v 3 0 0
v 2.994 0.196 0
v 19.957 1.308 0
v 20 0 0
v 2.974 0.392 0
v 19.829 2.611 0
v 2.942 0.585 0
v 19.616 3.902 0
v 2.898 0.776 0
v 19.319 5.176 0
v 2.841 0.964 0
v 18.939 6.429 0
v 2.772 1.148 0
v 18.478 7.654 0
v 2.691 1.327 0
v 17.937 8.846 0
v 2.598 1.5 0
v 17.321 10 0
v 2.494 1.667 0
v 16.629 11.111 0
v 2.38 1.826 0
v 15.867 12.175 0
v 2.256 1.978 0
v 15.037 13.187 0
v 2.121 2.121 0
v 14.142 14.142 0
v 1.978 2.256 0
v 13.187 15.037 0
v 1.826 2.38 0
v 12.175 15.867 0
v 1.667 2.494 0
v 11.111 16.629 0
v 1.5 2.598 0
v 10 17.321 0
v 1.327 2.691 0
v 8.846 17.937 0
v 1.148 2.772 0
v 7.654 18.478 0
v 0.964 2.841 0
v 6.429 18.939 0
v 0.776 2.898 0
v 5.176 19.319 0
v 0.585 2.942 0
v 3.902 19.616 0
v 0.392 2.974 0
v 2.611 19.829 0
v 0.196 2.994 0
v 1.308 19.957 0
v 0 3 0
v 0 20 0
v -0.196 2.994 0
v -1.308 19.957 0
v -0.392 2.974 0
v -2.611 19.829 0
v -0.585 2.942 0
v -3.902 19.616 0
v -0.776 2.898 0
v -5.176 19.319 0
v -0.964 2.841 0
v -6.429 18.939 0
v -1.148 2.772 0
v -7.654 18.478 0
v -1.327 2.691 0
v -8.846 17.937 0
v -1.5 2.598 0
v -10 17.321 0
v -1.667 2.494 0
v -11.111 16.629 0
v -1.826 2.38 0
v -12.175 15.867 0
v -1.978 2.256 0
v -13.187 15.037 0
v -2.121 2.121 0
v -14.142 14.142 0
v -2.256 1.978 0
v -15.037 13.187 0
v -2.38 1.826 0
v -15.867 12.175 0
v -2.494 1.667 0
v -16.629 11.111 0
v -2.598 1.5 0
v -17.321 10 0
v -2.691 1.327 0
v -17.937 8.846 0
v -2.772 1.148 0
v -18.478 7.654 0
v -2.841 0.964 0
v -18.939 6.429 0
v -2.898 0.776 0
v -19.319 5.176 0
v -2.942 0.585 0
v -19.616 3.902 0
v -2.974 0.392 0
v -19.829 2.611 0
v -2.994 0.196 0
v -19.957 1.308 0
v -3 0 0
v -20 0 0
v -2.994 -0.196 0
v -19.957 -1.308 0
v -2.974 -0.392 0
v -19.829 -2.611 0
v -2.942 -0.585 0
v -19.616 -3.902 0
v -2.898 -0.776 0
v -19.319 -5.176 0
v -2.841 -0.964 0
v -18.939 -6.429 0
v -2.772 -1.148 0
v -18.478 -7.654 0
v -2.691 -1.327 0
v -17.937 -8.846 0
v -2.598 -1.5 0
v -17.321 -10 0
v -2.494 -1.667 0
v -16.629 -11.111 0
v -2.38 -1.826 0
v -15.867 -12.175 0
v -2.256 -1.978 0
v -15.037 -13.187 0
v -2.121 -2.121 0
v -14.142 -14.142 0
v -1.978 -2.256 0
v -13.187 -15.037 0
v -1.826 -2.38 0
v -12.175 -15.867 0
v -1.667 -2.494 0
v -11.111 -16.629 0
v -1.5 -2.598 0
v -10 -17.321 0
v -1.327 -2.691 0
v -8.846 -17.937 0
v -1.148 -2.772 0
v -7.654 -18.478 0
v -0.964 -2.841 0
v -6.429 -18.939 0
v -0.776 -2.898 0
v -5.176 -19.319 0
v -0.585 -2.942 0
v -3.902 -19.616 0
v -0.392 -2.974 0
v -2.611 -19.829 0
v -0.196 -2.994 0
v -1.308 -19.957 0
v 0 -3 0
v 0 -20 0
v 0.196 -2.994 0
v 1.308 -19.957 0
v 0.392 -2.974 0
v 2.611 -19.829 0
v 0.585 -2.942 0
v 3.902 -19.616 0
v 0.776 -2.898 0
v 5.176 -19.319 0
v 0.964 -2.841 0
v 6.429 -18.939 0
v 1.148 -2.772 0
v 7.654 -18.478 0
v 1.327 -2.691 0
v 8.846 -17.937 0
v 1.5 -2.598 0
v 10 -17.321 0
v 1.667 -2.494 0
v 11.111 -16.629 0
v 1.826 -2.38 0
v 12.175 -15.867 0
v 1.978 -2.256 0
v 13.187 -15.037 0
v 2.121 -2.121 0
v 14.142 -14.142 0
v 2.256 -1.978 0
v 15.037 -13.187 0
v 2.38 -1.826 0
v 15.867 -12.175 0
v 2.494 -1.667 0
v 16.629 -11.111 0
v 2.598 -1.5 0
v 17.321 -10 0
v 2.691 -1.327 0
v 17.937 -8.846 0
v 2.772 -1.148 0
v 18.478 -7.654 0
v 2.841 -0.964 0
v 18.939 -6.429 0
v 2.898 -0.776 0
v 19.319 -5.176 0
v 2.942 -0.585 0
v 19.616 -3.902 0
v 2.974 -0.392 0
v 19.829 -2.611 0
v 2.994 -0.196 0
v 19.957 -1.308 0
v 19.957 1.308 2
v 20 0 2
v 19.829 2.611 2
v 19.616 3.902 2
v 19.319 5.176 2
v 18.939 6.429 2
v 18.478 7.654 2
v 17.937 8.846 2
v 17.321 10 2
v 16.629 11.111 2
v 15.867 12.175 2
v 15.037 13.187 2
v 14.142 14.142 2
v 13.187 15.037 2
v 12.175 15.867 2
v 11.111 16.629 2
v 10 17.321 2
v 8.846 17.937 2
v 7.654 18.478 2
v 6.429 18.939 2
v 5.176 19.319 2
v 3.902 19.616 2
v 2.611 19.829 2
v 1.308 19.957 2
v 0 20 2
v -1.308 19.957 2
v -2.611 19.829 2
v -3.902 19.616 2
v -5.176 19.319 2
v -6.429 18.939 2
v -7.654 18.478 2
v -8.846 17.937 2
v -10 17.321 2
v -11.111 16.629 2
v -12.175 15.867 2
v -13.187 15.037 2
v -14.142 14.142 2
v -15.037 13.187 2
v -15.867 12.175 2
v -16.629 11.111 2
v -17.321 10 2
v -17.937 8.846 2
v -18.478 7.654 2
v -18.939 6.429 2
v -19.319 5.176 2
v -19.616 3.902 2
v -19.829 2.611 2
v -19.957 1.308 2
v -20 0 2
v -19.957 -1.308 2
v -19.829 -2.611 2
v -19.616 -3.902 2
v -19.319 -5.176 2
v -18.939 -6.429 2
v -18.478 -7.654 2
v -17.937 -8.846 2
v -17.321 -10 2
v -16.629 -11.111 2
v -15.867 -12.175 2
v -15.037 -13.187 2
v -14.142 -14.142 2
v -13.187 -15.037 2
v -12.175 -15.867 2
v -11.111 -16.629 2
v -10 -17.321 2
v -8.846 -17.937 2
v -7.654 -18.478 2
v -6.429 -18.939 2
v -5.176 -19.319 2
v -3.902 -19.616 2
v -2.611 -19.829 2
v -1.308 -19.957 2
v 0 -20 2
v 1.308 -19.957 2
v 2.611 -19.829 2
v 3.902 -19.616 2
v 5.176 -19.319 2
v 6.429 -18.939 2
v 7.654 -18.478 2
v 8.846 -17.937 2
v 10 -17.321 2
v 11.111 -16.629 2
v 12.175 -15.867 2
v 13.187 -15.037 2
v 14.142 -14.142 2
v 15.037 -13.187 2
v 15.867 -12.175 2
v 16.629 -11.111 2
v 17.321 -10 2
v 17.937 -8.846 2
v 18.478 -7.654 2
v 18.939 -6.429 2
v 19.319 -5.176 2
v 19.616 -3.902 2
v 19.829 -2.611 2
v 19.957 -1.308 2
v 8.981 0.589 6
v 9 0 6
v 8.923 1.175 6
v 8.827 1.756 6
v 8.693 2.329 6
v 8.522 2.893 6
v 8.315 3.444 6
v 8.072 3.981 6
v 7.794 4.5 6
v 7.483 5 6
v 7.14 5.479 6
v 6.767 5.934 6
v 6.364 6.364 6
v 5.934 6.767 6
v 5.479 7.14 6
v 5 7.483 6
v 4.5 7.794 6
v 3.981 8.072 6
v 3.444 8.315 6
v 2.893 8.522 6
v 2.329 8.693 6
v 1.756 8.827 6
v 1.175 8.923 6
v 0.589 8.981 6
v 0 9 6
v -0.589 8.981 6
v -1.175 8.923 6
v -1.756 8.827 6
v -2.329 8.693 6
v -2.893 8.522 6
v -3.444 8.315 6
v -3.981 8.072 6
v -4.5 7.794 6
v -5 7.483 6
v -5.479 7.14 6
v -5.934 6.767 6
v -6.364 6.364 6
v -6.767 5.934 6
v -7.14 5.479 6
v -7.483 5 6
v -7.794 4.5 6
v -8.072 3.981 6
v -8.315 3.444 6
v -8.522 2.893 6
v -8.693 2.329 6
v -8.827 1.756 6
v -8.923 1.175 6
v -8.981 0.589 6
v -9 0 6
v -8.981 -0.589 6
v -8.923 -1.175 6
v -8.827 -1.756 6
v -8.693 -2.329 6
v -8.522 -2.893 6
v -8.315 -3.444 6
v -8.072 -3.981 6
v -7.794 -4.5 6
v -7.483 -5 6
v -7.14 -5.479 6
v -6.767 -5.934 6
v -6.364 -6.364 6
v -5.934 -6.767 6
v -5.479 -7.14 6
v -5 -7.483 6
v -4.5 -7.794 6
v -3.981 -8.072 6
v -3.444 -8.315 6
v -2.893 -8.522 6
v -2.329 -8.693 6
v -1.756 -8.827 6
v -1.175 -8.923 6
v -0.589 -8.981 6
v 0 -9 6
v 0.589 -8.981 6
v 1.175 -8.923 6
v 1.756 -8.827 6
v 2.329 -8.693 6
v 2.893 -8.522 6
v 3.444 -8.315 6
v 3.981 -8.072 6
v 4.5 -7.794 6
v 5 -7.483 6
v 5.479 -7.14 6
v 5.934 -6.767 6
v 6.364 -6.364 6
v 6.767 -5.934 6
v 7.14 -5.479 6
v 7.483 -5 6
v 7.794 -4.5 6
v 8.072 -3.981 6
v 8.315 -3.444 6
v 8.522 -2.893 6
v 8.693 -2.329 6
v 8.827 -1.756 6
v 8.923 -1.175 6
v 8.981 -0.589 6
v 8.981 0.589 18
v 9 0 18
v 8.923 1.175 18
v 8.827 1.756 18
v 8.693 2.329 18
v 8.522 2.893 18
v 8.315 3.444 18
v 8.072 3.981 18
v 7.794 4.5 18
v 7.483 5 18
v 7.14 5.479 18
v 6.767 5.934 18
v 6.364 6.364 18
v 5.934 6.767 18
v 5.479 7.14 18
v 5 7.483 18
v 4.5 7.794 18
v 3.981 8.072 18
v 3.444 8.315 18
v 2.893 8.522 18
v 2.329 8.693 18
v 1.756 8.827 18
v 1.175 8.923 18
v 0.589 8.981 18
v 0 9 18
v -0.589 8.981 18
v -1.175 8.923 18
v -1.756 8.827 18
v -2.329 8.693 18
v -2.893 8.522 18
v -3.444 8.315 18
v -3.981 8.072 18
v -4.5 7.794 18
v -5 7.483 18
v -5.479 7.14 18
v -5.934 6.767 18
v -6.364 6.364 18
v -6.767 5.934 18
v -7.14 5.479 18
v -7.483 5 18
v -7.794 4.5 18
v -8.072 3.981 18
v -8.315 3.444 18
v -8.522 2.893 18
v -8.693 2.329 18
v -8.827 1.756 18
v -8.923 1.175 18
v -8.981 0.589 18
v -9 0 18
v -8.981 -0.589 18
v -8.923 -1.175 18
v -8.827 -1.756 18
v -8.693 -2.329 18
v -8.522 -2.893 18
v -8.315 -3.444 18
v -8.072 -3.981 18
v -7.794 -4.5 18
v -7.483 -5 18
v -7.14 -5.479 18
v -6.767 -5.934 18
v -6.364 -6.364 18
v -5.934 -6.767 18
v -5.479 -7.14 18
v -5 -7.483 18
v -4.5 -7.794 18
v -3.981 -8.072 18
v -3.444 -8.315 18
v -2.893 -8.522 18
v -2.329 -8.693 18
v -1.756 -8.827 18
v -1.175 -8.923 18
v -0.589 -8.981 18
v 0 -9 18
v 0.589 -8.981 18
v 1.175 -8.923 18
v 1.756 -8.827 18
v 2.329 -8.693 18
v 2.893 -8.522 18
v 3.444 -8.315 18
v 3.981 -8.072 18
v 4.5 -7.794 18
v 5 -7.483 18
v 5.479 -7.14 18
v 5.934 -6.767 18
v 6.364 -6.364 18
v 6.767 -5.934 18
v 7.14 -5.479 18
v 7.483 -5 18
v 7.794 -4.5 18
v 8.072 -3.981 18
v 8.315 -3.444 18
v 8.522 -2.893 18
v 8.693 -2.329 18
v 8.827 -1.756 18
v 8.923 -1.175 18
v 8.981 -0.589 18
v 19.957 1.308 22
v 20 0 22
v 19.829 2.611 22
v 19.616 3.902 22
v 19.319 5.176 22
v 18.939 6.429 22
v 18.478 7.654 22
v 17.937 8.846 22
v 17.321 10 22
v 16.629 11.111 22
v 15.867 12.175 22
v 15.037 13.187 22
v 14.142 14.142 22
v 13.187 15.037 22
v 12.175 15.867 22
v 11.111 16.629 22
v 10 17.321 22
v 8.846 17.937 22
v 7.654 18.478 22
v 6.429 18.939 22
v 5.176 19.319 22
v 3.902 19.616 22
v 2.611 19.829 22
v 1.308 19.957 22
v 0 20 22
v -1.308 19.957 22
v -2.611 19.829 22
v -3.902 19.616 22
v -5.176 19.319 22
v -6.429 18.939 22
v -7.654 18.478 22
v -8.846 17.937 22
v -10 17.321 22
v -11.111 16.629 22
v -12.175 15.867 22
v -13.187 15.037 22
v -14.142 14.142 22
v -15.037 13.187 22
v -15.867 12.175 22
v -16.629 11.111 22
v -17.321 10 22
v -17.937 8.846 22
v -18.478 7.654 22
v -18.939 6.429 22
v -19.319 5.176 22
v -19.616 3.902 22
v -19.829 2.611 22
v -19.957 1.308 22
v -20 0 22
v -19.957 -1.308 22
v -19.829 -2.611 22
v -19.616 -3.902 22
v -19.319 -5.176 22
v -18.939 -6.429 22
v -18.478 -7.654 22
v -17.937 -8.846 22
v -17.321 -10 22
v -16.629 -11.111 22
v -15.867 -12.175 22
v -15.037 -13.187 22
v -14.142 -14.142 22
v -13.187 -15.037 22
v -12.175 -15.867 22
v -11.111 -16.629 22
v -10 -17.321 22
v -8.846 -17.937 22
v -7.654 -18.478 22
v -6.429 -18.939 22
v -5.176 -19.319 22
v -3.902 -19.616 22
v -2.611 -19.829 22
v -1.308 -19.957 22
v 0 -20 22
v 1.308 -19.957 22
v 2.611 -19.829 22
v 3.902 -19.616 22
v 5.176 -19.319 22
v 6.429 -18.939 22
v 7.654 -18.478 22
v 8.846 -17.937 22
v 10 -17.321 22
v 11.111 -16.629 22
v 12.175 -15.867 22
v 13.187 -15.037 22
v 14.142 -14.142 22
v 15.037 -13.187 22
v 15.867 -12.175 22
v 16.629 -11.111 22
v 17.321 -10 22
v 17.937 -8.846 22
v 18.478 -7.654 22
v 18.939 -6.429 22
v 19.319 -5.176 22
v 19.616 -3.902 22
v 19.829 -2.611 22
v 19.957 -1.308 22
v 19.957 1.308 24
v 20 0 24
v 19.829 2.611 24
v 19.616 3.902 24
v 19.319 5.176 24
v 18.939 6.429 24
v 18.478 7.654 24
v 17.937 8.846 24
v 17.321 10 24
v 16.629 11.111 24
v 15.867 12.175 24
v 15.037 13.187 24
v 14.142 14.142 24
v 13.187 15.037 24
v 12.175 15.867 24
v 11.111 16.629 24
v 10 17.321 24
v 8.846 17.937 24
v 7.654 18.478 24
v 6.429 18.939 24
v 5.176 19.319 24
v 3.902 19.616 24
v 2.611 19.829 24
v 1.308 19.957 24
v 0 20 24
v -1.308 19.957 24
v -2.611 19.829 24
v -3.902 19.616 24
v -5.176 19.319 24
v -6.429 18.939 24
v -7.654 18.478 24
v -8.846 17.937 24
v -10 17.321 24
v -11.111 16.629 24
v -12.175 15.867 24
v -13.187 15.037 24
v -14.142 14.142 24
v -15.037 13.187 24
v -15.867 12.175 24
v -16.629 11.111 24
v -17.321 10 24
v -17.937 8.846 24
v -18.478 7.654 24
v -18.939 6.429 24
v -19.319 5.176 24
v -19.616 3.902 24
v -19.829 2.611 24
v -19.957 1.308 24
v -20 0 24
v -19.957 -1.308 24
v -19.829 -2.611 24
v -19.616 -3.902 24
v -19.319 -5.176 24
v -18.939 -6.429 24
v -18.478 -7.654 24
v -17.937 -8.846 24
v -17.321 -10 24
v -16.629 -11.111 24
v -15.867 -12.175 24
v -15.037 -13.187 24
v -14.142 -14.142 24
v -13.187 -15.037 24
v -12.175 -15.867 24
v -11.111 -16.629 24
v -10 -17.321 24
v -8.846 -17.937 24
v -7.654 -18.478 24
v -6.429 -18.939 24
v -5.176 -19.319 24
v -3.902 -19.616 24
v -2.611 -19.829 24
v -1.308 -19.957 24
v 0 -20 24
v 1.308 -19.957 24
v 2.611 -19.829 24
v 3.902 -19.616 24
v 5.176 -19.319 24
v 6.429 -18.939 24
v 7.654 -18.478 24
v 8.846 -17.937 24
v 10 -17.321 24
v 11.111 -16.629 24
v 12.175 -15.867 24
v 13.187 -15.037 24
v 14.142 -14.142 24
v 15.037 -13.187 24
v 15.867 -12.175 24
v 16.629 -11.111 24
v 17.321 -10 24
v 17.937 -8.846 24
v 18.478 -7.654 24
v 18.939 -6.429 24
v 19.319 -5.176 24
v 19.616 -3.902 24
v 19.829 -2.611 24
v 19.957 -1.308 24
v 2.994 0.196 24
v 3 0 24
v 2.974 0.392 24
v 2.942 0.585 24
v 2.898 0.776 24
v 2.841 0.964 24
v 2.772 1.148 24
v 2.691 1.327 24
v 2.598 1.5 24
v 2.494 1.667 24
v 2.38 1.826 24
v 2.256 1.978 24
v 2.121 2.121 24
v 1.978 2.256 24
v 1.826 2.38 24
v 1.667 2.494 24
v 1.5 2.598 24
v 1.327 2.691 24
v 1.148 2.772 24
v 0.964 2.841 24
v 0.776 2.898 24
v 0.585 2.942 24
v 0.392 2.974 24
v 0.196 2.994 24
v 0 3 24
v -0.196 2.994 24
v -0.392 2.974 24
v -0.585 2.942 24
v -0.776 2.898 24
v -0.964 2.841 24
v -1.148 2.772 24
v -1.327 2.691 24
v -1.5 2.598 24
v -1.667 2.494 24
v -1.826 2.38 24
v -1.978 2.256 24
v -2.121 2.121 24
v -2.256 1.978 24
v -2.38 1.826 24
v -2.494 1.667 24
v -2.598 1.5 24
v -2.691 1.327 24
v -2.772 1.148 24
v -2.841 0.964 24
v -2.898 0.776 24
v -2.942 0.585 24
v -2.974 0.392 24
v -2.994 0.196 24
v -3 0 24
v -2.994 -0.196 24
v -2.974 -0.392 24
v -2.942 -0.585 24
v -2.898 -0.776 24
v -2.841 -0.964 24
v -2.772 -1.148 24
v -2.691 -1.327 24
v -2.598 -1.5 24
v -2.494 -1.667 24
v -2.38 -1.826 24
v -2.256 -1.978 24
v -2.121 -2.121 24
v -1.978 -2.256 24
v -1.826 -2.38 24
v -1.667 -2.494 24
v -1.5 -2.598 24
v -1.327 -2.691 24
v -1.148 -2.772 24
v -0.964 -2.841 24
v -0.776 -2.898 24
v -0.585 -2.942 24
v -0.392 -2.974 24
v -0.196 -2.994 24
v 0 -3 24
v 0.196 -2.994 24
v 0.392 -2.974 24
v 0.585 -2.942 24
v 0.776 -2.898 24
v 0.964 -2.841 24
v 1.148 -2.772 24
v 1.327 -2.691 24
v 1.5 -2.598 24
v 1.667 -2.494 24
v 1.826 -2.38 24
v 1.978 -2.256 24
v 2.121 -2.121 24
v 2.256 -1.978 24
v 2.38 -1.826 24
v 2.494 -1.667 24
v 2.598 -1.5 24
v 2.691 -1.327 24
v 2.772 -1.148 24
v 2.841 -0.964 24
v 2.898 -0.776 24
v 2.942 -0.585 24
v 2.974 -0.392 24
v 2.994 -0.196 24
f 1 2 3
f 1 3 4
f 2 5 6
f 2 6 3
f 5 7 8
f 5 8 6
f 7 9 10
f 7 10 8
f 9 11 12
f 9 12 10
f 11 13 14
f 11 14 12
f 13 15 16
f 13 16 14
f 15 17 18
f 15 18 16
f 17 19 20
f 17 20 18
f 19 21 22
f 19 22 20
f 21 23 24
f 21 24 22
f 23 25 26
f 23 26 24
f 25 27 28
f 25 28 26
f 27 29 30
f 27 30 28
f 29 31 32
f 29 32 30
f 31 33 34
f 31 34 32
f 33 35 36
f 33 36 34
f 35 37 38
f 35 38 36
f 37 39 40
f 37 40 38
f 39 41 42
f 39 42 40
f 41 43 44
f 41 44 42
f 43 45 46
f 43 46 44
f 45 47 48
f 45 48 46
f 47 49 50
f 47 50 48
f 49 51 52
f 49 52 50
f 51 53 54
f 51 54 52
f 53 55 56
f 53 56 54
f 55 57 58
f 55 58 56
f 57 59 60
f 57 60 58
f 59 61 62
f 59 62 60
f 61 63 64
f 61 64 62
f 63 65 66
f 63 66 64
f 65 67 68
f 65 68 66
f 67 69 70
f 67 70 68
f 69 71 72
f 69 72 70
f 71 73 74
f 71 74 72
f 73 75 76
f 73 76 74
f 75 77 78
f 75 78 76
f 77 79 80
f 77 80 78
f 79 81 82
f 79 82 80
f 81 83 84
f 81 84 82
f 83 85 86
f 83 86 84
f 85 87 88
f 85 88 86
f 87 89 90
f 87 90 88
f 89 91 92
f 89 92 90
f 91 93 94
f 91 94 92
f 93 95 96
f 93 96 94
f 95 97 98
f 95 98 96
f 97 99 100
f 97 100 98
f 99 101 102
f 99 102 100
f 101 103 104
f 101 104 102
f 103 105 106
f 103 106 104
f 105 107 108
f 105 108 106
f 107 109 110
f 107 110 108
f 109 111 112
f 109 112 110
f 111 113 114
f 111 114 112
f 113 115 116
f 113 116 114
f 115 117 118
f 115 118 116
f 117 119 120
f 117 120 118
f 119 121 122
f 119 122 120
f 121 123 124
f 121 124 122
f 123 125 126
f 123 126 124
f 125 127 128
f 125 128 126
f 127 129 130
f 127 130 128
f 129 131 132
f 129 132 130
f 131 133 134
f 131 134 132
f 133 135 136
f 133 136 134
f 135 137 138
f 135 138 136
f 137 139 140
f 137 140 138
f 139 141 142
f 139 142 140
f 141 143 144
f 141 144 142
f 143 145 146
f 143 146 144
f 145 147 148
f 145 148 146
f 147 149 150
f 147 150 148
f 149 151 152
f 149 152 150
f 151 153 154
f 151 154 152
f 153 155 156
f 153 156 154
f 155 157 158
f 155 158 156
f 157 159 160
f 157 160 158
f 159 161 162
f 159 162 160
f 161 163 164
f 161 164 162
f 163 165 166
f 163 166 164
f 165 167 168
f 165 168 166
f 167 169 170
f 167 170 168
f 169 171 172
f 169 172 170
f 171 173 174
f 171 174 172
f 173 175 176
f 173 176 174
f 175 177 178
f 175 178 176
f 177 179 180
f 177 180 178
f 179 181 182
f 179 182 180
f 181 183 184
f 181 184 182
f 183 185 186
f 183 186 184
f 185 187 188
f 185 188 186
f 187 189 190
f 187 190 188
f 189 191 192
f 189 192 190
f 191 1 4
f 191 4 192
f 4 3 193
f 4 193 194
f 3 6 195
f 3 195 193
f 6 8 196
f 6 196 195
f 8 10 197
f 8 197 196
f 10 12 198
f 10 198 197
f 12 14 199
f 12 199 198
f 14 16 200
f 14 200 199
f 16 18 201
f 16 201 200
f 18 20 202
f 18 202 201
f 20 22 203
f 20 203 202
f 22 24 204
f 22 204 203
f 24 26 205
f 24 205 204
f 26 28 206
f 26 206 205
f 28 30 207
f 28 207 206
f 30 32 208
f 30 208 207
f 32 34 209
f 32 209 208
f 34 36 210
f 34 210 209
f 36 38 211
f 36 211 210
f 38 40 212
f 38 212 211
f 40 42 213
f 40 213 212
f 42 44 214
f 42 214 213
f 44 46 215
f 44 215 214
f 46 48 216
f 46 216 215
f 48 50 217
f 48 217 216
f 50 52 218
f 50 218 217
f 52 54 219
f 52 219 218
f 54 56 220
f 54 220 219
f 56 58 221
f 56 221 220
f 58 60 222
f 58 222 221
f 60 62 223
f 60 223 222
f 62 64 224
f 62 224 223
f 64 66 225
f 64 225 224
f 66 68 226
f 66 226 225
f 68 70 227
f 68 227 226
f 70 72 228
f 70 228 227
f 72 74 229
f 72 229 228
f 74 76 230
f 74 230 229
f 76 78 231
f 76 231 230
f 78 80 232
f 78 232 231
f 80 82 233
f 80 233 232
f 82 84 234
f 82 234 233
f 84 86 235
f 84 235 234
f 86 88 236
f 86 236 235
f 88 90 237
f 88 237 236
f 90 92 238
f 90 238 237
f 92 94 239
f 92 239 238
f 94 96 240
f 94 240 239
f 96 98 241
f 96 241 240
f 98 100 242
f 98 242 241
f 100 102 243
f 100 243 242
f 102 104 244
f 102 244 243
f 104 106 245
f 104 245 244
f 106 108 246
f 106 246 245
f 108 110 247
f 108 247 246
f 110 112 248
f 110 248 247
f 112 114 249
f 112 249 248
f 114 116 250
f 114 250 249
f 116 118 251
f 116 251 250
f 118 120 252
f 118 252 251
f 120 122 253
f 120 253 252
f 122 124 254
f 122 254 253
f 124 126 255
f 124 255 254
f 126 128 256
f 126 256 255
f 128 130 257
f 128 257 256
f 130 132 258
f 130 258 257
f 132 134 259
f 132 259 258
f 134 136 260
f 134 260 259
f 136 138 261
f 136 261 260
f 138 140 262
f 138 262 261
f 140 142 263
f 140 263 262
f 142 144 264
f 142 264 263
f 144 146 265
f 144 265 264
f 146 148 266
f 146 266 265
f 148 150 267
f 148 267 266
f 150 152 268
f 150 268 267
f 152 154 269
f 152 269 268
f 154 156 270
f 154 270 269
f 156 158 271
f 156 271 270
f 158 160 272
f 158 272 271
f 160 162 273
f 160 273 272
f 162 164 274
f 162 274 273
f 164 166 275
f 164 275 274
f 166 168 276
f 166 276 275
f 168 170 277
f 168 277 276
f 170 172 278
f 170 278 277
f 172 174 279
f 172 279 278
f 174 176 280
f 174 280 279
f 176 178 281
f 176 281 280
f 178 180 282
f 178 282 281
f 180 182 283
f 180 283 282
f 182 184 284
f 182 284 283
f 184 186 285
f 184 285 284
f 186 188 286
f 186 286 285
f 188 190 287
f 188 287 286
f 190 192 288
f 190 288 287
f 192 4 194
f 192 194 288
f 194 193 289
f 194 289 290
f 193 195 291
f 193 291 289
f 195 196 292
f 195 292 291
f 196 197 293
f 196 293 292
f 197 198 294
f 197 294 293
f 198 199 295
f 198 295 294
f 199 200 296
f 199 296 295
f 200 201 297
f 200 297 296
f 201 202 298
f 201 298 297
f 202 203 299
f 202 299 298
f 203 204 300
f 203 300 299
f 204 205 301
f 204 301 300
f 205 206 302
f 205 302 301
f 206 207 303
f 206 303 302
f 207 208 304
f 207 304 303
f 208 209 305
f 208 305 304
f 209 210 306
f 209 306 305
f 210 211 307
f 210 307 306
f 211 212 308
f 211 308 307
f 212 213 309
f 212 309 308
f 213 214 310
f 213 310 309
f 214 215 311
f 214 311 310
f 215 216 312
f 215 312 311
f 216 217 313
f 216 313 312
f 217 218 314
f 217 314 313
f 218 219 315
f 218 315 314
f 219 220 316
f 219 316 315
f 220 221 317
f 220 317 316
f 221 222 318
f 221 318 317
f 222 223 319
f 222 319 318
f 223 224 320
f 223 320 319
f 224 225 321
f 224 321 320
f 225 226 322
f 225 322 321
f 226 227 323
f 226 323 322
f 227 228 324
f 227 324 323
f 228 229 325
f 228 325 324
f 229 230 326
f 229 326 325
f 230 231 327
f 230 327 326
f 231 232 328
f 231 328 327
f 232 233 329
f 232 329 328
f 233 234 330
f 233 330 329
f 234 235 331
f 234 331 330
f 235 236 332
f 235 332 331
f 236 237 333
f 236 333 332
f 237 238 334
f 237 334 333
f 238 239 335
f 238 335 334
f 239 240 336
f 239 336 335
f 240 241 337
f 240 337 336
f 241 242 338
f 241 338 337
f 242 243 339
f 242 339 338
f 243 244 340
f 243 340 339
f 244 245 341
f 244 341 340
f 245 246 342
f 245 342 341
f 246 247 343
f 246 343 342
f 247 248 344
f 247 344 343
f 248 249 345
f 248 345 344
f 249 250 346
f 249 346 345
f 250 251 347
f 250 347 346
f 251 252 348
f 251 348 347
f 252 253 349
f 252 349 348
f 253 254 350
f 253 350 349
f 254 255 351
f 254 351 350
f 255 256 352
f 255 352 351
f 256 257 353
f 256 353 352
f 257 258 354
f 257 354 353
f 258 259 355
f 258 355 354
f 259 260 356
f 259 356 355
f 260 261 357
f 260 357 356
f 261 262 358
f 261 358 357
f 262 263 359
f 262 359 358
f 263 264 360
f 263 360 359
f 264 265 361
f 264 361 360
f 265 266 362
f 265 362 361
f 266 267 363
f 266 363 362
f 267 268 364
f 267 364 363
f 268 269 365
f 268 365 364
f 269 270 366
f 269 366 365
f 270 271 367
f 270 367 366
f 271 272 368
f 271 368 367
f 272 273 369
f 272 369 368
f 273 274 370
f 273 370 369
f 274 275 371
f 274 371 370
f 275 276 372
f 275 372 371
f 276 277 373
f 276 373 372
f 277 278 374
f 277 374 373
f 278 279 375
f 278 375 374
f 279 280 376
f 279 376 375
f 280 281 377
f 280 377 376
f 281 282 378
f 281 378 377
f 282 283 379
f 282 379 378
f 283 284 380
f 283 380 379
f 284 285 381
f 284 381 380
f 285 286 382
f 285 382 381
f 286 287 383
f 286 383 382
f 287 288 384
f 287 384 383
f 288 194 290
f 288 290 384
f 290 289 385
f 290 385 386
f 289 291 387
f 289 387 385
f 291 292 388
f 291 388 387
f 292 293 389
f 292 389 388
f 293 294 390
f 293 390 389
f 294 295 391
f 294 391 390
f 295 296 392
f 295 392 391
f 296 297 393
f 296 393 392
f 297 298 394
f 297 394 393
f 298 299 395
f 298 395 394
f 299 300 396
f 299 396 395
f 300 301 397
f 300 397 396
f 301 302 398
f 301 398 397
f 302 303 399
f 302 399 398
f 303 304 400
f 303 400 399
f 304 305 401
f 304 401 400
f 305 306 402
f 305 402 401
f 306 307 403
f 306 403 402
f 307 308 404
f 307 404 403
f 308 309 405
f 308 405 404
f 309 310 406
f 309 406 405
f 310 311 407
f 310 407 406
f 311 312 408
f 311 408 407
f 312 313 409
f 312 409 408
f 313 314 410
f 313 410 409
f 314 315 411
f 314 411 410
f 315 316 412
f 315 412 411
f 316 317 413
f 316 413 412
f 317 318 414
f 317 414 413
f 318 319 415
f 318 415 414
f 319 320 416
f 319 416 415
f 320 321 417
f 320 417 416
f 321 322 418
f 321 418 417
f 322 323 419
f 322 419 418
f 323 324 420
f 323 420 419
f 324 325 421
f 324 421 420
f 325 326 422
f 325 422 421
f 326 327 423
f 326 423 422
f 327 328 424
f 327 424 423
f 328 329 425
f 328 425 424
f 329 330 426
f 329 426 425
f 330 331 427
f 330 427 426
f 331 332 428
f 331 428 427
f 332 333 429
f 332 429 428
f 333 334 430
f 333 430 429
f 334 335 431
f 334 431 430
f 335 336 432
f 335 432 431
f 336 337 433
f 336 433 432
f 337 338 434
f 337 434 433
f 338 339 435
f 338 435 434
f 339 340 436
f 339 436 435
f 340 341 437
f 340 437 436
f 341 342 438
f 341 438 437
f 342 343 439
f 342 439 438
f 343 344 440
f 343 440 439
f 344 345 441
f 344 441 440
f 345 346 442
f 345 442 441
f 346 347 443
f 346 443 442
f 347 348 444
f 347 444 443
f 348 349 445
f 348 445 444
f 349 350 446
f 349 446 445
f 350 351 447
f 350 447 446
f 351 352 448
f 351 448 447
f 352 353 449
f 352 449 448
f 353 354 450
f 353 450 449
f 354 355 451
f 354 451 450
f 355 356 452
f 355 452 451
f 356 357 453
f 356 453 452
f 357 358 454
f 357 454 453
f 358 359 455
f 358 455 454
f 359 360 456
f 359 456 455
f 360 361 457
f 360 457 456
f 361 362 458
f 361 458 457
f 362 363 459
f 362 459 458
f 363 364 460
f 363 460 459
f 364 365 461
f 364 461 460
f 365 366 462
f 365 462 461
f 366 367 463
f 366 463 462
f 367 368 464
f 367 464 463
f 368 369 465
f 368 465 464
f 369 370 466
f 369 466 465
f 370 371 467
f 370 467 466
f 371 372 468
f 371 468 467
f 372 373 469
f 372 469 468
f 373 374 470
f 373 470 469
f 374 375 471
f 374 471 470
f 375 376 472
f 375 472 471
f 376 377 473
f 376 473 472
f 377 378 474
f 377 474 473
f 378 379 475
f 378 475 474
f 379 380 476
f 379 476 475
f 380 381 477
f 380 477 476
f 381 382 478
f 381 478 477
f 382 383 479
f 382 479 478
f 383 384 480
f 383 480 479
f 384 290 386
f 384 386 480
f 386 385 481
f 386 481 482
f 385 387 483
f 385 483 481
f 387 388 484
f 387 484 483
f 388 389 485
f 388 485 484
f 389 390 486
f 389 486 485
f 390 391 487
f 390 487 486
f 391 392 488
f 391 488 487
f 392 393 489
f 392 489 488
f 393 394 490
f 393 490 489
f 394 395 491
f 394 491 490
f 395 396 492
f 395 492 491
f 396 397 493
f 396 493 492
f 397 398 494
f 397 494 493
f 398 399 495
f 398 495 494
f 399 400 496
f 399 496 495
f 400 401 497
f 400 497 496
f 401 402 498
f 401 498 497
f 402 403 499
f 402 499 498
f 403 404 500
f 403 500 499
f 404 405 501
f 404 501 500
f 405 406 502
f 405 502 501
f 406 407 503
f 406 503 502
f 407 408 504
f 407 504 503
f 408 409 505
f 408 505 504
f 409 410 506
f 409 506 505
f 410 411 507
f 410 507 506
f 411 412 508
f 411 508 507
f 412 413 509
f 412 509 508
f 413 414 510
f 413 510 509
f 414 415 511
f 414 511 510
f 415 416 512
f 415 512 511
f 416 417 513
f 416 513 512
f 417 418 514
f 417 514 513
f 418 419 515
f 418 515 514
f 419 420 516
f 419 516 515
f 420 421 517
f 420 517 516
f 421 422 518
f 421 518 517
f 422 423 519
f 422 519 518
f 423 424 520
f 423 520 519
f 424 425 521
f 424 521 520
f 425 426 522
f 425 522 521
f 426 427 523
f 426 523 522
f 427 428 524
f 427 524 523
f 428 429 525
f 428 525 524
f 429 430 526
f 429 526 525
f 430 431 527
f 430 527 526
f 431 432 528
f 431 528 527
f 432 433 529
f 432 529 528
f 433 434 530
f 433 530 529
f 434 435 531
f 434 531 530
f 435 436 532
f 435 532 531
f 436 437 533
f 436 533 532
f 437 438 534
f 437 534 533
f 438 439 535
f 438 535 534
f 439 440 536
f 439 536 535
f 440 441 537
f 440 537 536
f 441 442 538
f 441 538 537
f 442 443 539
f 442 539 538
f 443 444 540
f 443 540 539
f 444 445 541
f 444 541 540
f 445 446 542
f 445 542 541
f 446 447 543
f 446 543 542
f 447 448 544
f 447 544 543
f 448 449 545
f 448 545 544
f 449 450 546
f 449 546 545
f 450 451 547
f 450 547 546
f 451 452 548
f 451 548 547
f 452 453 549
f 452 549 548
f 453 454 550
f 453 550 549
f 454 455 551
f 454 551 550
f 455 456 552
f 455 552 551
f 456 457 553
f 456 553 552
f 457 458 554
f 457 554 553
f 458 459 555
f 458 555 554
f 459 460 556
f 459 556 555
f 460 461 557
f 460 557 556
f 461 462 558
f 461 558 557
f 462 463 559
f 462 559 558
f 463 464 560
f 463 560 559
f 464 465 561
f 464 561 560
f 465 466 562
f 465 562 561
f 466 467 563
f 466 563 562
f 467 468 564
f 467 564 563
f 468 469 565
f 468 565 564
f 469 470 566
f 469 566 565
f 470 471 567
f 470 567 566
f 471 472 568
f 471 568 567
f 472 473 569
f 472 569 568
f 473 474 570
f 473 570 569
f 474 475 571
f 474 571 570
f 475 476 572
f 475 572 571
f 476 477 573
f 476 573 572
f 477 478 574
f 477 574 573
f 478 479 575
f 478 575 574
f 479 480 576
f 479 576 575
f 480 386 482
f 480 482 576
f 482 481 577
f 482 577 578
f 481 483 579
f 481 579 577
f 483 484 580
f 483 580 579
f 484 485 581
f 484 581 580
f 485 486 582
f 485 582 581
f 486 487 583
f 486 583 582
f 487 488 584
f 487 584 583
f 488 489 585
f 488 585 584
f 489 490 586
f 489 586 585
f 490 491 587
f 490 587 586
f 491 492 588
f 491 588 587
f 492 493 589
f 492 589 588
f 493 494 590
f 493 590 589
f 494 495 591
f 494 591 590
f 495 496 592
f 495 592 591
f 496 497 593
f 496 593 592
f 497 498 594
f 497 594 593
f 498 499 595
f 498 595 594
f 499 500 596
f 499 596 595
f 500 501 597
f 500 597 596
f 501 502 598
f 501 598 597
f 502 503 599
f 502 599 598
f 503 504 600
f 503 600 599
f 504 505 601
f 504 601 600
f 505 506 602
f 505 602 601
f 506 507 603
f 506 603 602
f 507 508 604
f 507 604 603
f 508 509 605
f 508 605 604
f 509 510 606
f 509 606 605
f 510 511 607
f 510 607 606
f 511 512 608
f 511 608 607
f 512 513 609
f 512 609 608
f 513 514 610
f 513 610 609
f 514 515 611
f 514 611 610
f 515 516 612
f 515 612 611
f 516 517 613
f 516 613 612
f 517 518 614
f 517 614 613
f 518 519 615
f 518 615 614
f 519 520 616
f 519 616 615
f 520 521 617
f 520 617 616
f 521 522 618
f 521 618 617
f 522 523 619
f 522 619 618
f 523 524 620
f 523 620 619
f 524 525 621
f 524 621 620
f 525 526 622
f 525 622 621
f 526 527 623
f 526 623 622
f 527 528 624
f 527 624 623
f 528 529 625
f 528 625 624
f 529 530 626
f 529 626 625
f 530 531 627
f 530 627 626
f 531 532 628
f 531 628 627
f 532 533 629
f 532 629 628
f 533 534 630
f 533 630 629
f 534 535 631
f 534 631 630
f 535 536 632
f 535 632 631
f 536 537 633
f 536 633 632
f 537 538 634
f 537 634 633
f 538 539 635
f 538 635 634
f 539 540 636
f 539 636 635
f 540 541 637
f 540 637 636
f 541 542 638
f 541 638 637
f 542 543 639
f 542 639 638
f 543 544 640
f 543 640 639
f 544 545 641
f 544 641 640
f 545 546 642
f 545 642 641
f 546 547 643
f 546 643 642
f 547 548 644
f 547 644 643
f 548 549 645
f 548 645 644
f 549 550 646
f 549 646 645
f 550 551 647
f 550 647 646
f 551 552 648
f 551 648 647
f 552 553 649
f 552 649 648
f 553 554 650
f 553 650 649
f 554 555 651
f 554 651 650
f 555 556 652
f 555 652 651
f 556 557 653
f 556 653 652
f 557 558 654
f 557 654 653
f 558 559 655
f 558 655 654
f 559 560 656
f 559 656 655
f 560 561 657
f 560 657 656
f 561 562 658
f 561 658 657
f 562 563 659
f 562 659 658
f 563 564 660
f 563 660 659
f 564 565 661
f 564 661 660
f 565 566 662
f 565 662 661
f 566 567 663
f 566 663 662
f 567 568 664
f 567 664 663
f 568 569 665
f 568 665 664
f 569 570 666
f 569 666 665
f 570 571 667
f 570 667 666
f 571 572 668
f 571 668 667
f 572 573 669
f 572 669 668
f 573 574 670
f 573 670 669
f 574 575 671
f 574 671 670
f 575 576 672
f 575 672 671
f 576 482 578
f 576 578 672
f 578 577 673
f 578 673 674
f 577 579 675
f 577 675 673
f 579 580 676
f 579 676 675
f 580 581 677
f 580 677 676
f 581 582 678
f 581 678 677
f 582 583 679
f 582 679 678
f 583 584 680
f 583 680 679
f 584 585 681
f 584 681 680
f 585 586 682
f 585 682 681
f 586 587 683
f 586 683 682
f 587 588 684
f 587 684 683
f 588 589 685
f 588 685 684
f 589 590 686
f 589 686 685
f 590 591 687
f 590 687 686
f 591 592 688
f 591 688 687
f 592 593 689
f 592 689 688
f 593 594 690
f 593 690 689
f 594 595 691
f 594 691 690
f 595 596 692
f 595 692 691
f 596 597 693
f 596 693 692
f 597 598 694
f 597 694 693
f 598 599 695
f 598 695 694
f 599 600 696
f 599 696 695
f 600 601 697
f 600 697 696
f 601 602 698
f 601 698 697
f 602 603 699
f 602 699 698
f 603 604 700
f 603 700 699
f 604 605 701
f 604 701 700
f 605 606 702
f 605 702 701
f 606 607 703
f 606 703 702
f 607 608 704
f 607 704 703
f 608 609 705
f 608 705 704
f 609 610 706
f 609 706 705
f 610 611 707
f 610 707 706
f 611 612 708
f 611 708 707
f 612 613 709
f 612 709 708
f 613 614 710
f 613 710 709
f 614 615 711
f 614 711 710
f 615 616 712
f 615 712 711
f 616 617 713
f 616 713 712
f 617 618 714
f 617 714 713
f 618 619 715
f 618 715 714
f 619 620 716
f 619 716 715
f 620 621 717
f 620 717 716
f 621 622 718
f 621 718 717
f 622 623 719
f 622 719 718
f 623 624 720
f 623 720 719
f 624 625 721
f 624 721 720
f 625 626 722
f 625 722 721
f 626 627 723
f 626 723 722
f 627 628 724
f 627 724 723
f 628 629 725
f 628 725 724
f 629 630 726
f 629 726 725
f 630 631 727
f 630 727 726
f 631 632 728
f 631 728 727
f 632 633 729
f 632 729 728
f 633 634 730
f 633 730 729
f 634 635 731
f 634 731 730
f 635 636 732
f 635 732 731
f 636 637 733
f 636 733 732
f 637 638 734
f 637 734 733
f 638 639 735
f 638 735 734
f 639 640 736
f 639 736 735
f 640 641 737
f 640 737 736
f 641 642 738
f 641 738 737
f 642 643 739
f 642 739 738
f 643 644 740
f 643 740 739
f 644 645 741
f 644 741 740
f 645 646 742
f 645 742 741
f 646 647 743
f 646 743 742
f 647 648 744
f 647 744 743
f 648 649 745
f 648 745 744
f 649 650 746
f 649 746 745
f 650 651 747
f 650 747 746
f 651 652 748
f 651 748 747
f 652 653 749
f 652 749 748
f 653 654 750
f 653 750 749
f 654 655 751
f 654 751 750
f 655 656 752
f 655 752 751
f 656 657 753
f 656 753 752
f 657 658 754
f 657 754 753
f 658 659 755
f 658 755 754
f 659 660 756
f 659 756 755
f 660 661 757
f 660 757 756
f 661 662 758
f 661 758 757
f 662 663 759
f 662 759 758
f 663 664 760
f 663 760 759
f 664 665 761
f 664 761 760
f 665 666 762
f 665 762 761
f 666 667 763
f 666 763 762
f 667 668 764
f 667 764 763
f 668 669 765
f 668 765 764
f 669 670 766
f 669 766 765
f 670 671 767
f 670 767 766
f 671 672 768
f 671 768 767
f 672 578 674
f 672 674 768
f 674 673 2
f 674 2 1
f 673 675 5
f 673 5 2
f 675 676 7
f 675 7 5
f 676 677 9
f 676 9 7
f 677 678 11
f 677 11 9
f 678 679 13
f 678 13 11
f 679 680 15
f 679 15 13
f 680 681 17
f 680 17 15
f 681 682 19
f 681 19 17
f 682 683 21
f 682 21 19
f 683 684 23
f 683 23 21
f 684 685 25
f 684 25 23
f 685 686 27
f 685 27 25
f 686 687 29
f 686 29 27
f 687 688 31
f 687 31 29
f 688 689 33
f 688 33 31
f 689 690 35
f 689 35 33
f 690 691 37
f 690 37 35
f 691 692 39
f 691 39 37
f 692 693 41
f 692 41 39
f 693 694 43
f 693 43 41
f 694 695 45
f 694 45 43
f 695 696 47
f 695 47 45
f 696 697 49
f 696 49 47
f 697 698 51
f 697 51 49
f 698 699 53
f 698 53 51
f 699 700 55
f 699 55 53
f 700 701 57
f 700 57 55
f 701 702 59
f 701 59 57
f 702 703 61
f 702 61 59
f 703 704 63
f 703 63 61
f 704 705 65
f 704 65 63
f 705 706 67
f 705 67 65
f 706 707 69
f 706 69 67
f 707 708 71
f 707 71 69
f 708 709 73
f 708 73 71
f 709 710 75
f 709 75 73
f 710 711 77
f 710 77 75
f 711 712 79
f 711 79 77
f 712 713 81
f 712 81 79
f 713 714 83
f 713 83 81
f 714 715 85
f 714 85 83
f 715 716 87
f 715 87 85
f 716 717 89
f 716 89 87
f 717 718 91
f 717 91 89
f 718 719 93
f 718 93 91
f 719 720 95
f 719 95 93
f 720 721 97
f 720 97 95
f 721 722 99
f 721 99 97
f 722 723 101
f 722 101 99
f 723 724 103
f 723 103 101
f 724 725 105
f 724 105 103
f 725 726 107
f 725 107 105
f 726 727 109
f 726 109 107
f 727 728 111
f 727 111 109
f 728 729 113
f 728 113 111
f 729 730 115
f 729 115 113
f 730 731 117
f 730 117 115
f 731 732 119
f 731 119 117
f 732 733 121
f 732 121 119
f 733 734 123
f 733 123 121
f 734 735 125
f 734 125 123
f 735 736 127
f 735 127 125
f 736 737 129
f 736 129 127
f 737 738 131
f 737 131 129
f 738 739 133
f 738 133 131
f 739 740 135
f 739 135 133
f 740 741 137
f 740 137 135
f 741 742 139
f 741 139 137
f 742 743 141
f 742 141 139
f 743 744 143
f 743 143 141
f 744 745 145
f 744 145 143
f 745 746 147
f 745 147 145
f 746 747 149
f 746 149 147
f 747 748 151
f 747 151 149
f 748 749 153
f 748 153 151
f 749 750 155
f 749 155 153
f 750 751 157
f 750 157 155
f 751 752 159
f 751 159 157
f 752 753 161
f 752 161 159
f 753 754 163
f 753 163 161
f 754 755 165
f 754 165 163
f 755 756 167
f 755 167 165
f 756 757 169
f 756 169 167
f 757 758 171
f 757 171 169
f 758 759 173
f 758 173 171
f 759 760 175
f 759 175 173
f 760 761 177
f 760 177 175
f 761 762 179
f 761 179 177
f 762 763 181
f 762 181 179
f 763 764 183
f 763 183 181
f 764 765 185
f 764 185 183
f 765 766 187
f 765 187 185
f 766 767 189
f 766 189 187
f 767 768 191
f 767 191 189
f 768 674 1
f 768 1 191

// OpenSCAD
// Original MechIntel educational model. CC0-1.0. Units: mm.
// Not a standardized or load-rated component.
$fn=96;
// Section points: [radius, height], mm. Edit to change the profile.
section=[[3, 0], [20, 0], [20, 2], [9, 6], [9, 18], [20, 22], [20, 24], [3, 24]];
rotate_extrude($fn=96) polygon(points=section);
